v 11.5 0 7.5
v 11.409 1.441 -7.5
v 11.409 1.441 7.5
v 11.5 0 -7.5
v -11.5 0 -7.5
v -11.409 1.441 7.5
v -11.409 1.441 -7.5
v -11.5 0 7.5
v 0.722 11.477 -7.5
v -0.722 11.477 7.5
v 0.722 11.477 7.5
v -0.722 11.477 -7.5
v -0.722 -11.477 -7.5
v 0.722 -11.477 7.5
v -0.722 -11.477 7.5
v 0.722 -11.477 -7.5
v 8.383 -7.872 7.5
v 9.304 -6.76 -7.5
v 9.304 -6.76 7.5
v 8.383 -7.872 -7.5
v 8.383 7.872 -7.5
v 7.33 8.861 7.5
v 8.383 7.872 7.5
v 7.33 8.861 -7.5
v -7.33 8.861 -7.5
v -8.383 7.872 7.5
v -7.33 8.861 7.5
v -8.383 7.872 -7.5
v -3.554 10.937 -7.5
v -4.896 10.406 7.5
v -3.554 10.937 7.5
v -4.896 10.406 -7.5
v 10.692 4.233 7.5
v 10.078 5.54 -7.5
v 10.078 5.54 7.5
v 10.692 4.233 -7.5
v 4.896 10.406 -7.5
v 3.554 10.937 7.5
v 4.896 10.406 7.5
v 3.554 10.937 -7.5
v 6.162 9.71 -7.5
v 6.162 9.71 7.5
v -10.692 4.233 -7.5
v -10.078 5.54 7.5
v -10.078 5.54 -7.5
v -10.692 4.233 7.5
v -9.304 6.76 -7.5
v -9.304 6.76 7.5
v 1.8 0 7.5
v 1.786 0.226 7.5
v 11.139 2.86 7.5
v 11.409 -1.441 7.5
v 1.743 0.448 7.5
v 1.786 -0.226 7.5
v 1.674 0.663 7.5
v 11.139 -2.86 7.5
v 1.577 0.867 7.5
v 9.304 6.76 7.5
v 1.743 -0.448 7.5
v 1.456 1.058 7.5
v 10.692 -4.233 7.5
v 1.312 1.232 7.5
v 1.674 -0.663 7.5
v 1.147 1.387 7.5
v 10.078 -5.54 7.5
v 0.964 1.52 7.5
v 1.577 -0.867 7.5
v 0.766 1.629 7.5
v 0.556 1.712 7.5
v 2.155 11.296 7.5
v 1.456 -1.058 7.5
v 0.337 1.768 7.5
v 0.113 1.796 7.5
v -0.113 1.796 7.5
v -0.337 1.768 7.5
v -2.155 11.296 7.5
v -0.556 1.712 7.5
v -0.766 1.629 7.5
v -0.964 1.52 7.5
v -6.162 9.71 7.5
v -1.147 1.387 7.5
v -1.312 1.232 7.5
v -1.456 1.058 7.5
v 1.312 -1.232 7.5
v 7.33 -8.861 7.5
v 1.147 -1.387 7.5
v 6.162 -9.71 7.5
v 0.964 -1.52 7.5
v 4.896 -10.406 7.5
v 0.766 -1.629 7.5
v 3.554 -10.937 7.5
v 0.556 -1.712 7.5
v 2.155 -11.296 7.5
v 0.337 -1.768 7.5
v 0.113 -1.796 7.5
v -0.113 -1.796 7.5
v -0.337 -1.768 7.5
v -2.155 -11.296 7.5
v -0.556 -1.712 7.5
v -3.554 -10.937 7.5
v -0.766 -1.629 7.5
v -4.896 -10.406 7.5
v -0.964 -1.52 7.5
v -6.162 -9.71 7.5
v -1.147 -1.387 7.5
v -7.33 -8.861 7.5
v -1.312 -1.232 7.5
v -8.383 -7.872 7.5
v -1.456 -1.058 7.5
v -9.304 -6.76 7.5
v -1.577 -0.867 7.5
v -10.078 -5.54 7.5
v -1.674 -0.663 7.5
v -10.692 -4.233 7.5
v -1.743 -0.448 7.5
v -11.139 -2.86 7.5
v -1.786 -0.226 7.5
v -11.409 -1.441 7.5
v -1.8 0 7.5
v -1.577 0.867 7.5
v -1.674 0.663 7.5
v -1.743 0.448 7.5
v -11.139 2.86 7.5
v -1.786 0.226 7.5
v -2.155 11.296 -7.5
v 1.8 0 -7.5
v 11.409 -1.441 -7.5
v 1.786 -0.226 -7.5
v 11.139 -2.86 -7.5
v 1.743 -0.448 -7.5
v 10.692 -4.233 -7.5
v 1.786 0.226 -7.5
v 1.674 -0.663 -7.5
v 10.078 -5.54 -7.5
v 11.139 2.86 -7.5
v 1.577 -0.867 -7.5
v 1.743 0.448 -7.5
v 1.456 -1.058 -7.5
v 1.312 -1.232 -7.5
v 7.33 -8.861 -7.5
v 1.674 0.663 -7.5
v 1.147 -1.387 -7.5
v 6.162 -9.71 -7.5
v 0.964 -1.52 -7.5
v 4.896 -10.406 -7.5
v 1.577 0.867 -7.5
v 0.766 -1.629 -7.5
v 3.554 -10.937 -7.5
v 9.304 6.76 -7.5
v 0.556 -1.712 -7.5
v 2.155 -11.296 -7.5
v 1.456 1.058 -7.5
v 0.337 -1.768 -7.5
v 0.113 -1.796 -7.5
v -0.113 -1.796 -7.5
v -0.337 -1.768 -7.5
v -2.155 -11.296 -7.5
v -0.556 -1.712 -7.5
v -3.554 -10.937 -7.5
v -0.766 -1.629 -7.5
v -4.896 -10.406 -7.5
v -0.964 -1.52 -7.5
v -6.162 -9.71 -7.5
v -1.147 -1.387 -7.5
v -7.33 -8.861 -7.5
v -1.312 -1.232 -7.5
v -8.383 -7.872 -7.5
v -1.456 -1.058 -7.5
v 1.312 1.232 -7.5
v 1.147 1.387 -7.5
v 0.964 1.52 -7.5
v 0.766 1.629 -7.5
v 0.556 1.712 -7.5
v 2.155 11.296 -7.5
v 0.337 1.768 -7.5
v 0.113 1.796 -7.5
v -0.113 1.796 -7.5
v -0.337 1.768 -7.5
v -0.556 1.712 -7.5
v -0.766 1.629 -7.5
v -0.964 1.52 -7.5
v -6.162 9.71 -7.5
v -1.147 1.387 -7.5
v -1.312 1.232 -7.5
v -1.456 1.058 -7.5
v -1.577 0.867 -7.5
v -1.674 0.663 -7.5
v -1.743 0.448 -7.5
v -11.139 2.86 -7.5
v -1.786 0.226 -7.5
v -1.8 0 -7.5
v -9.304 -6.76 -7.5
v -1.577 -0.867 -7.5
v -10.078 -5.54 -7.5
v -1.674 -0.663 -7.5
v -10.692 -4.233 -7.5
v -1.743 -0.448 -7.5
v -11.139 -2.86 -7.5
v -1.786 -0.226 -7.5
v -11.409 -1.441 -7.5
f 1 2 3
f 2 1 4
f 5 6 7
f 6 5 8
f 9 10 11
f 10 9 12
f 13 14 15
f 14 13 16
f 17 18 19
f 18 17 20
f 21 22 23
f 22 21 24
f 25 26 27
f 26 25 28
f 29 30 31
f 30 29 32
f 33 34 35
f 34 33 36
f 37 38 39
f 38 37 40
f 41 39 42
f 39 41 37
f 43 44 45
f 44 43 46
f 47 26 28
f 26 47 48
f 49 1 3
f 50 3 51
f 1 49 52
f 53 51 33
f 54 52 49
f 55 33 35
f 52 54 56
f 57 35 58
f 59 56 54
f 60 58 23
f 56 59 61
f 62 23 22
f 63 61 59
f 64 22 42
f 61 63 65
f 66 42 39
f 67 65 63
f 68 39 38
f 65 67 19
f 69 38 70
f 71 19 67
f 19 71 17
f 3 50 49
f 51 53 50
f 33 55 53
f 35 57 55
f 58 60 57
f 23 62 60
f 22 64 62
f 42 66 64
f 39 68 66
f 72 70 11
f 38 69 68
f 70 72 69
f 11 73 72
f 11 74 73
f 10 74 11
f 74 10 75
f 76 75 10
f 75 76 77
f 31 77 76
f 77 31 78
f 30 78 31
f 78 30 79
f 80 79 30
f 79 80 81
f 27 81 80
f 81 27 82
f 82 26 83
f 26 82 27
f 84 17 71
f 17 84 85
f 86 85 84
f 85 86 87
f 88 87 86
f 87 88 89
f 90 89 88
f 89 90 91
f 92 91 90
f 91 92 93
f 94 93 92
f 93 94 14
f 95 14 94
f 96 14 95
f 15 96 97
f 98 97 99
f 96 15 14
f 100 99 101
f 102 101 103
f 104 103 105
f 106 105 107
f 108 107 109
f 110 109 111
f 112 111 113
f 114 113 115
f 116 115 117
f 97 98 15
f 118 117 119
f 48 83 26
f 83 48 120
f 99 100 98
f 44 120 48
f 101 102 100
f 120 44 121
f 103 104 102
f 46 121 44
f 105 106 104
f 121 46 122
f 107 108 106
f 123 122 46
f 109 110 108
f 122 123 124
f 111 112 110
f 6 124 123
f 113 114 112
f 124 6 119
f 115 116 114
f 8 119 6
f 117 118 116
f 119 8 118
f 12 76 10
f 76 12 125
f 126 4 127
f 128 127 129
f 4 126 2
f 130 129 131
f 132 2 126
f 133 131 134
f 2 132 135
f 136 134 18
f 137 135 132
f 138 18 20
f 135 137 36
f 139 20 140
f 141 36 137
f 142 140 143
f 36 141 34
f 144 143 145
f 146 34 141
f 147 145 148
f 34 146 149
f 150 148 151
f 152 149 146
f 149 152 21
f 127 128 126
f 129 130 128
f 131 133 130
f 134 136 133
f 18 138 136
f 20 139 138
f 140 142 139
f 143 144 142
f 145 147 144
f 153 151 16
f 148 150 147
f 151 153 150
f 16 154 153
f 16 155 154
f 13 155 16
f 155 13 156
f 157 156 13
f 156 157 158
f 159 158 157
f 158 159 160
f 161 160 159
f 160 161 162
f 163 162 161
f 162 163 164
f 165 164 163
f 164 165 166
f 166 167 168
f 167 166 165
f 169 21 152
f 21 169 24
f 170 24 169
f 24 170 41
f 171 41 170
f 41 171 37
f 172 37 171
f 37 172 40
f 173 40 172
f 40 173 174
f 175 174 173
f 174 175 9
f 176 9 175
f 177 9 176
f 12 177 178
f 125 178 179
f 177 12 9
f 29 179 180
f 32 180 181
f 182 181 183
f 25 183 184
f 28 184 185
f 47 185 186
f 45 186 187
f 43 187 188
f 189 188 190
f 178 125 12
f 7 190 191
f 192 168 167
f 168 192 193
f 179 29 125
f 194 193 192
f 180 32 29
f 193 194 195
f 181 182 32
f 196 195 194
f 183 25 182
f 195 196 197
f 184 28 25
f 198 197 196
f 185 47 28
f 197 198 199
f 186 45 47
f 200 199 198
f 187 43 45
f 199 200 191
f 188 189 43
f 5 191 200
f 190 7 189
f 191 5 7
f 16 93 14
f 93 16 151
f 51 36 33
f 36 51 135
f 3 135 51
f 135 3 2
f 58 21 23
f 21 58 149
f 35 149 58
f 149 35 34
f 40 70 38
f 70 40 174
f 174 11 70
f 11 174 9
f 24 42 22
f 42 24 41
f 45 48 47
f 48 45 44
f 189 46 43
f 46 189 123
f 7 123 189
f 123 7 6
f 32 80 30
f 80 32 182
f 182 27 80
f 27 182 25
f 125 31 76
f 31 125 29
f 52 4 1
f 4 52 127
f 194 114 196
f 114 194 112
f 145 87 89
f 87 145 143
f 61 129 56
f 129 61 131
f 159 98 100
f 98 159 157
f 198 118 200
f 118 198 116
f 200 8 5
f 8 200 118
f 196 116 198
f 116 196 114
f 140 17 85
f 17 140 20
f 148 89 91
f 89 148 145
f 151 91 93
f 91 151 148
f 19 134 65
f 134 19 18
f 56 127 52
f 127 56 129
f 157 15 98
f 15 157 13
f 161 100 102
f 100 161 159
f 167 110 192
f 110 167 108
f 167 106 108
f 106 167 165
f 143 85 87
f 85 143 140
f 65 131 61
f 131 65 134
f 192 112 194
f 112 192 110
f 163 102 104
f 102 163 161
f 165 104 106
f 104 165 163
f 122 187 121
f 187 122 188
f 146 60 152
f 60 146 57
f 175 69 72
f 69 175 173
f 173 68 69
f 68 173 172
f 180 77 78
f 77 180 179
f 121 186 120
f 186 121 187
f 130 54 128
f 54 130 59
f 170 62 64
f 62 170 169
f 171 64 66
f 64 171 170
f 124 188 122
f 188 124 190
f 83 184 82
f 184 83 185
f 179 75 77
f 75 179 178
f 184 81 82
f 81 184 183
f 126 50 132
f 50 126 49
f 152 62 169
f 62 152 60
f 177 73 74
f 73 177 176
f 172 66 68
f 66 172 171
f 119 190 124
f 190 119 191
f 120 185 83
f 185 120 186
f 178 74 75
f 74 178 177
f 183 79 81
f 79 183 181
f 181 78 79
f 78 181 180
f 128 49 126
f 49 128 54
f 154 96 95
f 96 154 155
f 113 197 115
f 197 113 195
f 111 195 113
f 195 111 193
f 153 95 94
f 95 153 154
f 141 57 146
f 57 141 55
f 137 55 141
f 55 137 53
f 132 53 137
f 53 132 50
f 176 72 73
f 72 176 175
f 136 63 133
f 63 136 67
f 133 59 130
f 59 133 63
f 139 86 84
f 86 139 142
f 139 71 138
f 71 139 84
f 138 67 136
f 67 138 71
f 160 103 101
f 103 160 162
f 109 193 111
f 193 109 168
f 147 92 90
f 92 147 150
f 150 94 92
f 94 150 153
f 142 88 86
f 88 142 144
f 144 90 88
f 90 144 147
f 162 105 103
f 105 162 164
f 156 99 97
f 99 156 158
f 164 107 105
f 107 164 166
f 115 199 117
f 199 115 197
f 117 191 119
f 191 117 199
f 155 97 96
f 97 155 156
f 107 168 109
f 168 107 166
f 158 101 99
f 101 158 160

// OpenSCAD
$fn = 50;


difference() {
	union() {
		translate(v = [0, 0, -7.5000000000]) {
			cylinder(h = 15, r = 11.5000000000);
		}
	}
	union() {
		translate(v = [0, 0, -100.0000000000]) {
			cylinder(h = 200, r = 1.8000000000);
		}
	}
}
